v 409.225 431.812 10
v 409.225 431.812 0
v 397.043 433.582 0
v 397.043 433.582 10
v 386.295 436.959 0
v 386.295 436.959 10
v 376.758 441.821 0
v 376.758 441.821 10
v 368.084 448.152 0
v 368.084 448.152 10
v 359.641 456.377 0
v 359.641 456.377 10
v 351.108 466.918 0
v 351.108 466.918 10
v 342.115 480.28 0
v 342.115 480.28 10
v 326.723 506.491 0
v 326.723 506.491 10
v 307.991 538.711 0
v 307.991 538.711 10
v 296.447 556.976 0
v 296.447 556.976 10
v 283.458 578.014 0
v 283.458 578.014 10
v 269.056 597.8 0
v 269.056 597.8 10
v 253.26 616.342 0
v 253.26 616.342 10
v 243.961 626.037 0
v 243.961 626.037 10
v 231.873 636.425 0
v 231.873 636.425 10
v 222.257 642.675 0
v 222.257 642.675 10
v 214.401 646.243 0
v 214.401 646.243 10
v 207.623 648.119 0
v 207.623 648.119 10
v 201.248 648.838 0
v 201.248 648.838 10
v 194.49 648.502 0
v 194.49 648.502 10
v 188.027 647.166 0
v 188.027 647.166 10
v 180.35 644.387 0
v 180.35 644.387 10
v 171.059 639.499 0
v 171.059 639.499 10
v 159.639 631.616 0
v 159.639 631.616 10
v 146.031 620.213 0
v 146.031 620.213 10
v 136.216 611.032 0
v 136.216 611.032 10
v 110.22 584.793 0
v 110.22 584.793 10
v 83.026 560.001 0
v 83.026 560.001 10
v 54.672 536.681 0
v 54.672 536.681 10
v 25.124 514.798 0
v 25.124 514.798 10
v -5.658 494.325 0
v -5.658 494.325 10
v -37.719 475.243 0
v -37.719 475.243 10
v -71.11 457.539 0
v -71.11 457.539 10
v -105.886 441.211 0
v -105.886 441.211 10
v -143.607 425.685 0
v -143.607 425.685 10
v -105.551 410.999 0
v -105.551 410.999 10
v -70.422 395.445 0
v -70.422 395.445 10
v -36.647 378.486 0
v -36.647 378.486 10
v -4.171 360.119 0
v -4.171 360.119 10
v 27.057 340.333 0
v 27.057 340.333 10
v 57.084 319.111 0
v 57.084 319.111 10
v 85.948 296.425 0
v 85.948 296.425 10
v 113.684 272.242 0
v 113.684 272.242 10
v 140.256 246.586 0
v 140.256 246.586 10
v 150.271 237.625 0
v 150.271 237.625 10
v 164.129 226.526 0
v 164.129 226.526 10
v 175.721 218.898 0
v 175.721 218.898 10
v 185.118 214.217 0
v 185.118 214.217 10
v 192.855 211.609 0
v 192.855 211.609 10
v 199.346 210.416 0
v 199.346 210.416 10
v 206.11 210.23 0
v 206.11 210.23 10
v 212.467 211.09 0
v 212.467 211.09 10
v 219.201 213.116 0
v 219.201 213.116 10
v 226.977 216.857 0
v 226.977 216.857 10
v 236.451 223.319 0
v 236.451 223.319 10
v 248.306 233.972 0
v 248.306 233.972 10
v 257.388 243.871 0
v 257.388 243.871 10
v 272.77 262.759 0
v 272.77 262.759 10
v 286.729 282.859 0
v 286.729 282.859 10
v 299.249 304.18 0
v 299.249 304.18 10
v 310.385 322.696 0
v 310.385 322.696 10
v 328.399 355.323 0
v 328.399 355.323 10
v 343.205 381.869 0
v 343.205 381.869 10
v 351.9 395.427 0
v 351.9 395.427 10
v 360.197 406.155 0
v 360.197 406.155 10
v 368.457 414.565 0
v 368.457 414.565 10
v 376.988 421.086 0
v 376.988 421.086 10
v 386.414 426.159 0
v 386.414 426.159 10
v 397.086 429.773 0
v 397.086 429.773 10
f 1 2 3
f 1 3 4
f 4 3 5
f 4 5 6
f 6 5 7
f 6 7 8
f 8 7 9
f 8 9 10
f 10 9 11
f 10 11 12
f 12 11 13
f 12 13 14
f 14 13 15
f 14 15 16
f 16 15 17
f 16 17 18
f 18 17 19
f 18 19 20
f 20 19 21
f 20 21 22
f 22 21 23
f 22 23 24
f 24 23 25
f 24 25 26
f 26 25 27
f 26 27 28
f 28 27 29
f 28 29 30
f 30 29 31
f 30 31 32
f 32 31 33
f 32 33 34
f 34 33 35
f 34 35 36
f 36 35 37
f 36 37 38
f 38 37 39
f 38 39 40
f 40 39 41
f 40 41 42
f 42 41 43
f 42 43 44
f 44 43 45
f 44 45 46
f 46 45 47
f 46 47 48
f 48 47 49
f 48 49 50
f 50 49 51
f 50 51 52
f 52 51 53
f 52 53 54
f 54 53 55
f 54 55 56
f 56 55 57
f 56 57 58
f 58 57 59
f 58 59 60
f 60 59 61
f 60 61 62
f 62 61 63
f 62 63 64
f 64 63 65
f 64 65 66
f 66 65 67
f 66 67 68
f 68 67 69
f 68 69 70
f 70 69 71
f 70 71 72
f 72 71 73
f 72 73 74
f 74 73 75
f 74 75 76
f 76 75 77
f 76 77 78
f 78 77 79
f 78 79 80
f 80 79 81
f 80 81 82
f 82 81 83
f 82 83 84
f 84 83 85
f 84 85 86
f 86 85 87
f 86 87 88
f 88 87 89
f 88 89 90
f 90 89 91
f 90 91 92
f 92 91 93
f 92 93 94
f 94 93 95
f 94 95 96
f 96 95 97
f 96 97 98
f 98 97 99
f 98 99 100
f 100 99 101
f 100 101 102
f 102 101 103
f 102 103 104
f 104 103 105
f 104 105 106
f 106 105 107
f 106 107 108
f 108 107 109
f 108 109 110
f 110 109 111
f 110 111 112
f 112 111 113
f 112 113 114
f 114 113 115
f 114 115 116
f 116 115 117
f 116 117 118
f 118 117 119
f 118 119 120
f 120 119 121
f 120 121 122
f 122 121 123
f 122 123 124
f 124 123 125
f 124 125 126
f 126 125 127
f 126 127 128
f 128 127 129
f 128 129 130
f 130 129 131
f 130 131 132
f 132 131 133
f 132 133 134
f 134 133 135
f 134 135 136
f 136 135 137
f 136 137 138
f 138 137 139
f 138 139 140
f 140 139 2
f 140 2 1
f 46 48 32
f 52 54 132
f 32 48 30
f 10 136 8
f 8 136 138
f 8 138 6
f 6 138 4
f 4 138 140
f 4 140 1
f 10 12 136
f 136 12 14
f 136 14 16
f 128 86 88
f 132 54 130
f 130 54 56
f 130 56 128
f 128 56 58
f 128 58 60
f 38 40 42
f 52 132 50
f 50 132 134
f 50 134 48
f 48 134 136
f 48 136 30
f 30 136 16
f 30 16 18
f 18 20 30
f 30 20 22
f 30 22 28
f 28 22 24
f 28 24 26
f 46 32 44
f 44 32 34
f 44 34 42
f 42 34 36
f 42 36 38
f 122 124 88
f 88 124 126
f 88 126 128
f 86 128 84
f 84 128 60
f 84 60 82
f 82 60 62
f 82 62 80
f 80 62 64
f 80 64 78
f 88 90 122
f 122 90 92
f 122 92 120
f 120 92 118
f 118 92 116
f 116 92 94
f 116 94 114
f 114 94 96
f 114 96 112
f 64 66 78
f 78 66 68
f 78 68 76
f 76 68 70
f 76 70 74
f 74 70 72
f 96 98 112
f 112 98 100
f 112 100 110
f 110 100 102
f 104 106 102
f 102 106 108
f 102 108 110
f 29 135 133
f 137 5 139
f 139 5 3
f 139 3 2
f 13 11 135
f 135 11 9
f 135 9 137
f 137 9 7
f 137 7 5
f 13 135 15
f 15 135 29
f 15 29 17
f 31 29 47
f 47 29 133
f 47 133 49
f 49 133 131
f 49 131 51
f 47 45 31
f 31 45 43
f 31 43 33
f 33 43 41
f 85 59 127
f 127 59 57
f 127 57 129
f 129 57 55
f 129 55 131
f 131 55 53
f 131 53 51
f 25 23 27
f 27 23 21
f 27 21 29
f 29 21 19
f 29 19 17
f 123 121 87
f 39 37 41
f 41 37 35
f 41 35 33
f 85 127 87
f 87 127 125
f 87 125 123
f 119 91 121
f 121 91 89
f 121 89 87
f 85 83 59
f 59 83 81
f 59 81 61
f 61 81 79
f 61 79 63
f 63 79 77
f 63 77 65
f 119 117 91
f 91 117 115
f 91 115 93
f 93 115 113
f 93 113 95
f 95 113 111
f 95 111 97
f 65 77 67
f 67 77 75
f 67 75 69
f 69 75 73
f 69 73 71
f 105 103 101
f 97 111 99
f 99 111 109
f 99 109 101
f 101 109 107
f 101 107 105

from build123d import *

# Parameters (mm, degrees)
BOSS_EXTRUDE1_DEPTH = 10


with BuildPart() as part:
    # Sketch1 → Boss-Extrude1 (new body)
    with BuildSketch(Plane.XY):
        with BuildLine():
            add(Edge.make_bspline(
                [(409.224868449, 431.812362674), (353.208318775, 435.814996738), (341.801830867, 488.161683055), (296.446812903, 556.976193069)],
                knots=[0, 0, 0, 0, 1, 1, 1, 1], degree=3))
            add(Edge.make_bspline(
                [(296.446812903, 556.976193069), (281.932763026, 582.589222263), (264.405949262, 605.591633402), (243.960653378, 626.036929287)],
                knots=[0, 0, 0, 0, 1, 1, 1, 1], degree=3))
            add(Edge.make_bspline(
                [(243.960653378, 626.036929287), (206.568548088, 661.953958927), (181.063496859, 654.384446294), (136.216103642, 611.031966185)],
                knots=[0, 0, 0, 0, 1, 1, 1, 1], degree=3))
            add(Edge.make_bspline(
                [(136.216103642, 611.031966185), (21.148921326, 488.871601397), (-143.606904725, 425.684916913)],
                knots=[0, 0, 0, 1, 1, 1], degree=2))
            add(Edge.make_bspline(
                [(140.255533668, 246.58561274), (22.508963994, 366.165529538), (-143.606904725, 425.684916913)],
                knots=[0, 0, 0, 1, 1, 1], degree=2))
            add(Edge.make_bspline(
                [(248.306195431, 233.972468485), (211.719368719, 197.235475313), (186.052806813, 204.237814893), (140.255533668, 246.58561274)],
                knots=[0, 0, 0, 0, 1, 1, 1, 1], degree=3))
            add(Edge.make_bspline(
                [(299.248745784, 304.179582029), (285.30596832, 278.25114465), (268.293303375, 254.865906777), (248.306195431, 233.972468485)],
                knots=[0, 0, 0, 0, 1, 1, 1, 1], degree=3))
            add(Edge.make_bspline(
                [(409.224868449, 431.812362674), (353.310797723, 426.569118286), (343.067364019, 373.982469784), (299.248745784, 304.179582029)],
                knots=[0, 0, 0, 0, 1, 1, 1, 1], degree=3))
        make_face()
    extrude(amount=BOSS_EXTRUDE1_DEPTH)


solid = part.part
